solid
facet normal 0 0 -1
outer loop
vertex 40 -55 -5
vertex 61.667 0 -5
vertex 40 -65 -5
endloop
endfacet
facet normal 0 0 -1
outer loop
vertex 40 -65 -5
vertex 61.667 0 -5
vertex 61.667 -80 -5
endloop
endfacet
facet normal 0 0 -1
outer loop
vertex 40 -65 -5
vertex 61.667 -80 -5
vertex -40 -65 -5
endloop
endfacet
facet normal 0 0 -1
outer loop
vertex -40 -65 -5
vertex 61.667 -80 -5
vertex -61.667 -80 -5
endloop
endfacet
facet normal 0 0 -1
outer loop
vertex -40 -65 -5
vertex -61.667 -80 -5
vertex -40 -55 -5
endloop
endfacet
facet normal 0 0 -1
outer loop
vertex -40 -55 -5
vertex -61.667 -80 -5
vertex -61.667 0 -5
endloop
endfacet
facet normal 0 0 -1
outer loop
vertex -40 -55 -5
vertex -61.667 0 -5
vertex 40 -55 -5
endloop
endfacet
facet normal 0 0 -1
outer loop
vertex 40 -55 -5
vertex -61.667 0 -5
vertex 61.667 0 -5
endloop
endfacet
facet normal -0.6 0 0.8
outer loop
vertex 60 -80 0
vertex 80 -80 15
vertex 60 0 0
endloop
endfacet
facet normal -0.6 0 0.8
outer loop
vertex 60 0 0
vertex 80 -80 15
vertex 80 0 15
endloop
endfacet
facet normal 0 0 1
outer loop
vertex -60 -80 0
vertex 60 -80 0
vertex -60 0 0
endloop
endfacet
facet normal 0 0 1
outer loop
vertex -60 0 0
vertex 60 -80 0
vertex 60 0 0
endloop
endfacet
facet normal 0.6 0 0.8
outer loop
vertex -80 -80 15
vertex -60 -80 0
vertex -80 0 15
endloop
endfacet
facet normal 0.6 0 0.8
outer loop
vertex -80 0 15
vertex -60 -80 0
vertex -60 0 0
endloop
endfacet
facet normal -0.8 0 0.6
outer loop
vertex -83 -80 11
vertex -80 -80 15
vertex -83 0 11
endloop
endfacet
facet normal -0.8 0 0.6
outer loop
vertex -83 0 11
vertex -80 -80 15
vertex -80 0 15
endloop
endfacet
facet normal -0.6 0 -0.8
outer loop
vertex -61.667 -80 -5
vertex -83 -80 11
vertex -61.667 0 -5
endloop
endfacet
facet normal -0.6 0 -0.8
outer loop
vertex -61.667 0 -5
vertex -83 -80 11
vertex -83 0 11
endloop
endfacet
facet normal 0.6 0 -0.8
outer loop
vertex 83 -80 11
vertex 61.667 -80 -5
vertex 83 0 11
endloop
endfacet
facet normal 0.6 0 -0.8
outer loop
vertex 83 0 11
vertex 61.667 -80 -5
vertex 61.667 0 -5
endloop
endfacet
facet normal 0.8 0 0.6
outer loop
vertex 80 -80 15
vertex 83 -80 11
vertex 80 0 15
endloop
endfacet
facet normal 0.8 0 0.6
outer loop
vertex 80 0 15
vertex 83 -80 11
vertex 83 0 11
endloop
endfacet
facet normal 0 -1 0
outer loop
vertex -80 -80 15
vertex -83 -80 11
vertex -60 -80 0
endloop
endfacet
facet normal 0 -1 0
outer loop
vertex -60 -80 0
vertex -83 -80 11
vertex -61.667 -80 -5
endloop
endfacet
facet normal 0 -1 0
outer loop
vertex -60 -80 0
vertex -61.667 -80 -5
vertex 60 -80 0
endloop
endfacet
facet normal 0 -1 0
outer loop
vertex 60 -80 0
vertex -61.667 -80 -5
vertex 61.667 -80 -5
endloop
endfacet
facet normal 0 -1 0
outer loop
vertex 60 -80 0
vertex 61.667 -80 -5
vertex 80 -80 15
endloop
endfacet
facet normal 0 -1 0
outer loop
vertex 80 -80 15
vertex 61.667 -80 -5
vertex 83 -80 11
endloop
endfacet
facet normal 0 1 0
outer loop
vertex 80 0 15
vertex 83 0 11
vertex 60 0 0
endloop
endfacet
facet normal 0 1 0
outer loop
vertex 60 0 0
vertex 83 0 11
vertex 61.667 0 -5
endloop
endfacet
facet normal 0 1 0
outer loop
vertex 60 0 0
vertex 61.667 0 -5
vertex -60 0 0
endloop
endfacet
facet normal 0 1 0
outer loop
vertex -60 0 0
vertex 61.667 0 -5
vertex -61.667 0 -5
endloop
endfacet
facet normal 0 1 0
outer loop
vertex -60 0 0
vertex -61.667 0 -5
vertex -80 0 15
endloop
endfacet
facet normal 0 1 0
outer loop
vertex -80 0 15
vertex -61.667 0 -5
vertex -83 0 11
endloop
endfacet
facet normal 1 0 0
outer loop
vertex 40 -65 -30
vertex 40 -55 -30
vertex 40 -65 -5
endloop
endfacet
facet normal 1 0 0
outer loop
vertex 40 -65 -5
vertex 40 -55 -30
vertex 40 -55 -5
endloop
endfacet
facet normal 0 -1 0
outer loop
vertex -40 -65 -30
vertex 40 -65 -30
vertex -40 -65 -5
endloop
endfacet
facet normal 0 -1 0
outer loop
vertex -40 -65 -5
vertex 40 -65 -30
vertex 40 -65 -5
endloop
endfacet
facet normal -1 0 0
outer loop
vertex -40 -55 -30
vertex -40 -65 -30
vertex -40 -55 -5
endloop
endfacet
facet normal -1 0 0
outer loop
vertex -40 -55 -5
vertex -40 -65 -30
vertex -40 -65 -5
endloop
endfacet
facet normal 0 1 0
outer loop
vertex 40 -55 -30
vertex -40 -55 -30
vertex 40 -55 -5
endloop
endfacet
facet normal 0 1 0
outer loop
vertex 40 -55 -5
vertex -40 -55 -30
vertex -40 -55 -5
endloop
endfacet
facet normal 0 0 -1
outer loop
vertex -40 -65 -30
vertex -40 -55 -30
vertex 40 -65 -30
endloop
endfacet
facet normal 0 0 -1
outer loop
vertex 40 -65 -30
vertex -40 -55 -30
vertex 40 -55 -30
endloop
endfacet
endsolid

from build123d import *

# Parameters (mm, degrees)
BOSS_EXTRUDE1_DEPTH = 80
SKETCH2_W           = 80
SKETCH2_H           = 10
BOSS_EXTRUDE2_DEPTH = 25


with BuildPart() as part:
    # Sketch1 → Boss-Extrude1 (new body)
    with BuildSketch(Plane(origin=(0, 0, 0), x_dir=(1, 0, 0), z_dir=(0, 1, 0))):
        Polygon((-60, 0), (60, 0), (80, -15), (83, -11), (61.666666667, 5), (-61.666666667, 5), (-83, -11), (-80, -15), align=None)
    extrude(amount=-BOSS_EXTRUDE1_DEPTH)

    # Sketch2 → Boss-Extrude2 (add)
    with BuildSketch(Plane(origin=(0, 0, -5), x_dir=(-1, 0, 0), z_dir=(0, 0, -1))):
        with Locations((0, -60)):
            Rectangle(SKETCH2_W, SKETCH2_H)
    extrude(amount=BOSS_EXTRUDE2_DEPTH)


solid = part.part
